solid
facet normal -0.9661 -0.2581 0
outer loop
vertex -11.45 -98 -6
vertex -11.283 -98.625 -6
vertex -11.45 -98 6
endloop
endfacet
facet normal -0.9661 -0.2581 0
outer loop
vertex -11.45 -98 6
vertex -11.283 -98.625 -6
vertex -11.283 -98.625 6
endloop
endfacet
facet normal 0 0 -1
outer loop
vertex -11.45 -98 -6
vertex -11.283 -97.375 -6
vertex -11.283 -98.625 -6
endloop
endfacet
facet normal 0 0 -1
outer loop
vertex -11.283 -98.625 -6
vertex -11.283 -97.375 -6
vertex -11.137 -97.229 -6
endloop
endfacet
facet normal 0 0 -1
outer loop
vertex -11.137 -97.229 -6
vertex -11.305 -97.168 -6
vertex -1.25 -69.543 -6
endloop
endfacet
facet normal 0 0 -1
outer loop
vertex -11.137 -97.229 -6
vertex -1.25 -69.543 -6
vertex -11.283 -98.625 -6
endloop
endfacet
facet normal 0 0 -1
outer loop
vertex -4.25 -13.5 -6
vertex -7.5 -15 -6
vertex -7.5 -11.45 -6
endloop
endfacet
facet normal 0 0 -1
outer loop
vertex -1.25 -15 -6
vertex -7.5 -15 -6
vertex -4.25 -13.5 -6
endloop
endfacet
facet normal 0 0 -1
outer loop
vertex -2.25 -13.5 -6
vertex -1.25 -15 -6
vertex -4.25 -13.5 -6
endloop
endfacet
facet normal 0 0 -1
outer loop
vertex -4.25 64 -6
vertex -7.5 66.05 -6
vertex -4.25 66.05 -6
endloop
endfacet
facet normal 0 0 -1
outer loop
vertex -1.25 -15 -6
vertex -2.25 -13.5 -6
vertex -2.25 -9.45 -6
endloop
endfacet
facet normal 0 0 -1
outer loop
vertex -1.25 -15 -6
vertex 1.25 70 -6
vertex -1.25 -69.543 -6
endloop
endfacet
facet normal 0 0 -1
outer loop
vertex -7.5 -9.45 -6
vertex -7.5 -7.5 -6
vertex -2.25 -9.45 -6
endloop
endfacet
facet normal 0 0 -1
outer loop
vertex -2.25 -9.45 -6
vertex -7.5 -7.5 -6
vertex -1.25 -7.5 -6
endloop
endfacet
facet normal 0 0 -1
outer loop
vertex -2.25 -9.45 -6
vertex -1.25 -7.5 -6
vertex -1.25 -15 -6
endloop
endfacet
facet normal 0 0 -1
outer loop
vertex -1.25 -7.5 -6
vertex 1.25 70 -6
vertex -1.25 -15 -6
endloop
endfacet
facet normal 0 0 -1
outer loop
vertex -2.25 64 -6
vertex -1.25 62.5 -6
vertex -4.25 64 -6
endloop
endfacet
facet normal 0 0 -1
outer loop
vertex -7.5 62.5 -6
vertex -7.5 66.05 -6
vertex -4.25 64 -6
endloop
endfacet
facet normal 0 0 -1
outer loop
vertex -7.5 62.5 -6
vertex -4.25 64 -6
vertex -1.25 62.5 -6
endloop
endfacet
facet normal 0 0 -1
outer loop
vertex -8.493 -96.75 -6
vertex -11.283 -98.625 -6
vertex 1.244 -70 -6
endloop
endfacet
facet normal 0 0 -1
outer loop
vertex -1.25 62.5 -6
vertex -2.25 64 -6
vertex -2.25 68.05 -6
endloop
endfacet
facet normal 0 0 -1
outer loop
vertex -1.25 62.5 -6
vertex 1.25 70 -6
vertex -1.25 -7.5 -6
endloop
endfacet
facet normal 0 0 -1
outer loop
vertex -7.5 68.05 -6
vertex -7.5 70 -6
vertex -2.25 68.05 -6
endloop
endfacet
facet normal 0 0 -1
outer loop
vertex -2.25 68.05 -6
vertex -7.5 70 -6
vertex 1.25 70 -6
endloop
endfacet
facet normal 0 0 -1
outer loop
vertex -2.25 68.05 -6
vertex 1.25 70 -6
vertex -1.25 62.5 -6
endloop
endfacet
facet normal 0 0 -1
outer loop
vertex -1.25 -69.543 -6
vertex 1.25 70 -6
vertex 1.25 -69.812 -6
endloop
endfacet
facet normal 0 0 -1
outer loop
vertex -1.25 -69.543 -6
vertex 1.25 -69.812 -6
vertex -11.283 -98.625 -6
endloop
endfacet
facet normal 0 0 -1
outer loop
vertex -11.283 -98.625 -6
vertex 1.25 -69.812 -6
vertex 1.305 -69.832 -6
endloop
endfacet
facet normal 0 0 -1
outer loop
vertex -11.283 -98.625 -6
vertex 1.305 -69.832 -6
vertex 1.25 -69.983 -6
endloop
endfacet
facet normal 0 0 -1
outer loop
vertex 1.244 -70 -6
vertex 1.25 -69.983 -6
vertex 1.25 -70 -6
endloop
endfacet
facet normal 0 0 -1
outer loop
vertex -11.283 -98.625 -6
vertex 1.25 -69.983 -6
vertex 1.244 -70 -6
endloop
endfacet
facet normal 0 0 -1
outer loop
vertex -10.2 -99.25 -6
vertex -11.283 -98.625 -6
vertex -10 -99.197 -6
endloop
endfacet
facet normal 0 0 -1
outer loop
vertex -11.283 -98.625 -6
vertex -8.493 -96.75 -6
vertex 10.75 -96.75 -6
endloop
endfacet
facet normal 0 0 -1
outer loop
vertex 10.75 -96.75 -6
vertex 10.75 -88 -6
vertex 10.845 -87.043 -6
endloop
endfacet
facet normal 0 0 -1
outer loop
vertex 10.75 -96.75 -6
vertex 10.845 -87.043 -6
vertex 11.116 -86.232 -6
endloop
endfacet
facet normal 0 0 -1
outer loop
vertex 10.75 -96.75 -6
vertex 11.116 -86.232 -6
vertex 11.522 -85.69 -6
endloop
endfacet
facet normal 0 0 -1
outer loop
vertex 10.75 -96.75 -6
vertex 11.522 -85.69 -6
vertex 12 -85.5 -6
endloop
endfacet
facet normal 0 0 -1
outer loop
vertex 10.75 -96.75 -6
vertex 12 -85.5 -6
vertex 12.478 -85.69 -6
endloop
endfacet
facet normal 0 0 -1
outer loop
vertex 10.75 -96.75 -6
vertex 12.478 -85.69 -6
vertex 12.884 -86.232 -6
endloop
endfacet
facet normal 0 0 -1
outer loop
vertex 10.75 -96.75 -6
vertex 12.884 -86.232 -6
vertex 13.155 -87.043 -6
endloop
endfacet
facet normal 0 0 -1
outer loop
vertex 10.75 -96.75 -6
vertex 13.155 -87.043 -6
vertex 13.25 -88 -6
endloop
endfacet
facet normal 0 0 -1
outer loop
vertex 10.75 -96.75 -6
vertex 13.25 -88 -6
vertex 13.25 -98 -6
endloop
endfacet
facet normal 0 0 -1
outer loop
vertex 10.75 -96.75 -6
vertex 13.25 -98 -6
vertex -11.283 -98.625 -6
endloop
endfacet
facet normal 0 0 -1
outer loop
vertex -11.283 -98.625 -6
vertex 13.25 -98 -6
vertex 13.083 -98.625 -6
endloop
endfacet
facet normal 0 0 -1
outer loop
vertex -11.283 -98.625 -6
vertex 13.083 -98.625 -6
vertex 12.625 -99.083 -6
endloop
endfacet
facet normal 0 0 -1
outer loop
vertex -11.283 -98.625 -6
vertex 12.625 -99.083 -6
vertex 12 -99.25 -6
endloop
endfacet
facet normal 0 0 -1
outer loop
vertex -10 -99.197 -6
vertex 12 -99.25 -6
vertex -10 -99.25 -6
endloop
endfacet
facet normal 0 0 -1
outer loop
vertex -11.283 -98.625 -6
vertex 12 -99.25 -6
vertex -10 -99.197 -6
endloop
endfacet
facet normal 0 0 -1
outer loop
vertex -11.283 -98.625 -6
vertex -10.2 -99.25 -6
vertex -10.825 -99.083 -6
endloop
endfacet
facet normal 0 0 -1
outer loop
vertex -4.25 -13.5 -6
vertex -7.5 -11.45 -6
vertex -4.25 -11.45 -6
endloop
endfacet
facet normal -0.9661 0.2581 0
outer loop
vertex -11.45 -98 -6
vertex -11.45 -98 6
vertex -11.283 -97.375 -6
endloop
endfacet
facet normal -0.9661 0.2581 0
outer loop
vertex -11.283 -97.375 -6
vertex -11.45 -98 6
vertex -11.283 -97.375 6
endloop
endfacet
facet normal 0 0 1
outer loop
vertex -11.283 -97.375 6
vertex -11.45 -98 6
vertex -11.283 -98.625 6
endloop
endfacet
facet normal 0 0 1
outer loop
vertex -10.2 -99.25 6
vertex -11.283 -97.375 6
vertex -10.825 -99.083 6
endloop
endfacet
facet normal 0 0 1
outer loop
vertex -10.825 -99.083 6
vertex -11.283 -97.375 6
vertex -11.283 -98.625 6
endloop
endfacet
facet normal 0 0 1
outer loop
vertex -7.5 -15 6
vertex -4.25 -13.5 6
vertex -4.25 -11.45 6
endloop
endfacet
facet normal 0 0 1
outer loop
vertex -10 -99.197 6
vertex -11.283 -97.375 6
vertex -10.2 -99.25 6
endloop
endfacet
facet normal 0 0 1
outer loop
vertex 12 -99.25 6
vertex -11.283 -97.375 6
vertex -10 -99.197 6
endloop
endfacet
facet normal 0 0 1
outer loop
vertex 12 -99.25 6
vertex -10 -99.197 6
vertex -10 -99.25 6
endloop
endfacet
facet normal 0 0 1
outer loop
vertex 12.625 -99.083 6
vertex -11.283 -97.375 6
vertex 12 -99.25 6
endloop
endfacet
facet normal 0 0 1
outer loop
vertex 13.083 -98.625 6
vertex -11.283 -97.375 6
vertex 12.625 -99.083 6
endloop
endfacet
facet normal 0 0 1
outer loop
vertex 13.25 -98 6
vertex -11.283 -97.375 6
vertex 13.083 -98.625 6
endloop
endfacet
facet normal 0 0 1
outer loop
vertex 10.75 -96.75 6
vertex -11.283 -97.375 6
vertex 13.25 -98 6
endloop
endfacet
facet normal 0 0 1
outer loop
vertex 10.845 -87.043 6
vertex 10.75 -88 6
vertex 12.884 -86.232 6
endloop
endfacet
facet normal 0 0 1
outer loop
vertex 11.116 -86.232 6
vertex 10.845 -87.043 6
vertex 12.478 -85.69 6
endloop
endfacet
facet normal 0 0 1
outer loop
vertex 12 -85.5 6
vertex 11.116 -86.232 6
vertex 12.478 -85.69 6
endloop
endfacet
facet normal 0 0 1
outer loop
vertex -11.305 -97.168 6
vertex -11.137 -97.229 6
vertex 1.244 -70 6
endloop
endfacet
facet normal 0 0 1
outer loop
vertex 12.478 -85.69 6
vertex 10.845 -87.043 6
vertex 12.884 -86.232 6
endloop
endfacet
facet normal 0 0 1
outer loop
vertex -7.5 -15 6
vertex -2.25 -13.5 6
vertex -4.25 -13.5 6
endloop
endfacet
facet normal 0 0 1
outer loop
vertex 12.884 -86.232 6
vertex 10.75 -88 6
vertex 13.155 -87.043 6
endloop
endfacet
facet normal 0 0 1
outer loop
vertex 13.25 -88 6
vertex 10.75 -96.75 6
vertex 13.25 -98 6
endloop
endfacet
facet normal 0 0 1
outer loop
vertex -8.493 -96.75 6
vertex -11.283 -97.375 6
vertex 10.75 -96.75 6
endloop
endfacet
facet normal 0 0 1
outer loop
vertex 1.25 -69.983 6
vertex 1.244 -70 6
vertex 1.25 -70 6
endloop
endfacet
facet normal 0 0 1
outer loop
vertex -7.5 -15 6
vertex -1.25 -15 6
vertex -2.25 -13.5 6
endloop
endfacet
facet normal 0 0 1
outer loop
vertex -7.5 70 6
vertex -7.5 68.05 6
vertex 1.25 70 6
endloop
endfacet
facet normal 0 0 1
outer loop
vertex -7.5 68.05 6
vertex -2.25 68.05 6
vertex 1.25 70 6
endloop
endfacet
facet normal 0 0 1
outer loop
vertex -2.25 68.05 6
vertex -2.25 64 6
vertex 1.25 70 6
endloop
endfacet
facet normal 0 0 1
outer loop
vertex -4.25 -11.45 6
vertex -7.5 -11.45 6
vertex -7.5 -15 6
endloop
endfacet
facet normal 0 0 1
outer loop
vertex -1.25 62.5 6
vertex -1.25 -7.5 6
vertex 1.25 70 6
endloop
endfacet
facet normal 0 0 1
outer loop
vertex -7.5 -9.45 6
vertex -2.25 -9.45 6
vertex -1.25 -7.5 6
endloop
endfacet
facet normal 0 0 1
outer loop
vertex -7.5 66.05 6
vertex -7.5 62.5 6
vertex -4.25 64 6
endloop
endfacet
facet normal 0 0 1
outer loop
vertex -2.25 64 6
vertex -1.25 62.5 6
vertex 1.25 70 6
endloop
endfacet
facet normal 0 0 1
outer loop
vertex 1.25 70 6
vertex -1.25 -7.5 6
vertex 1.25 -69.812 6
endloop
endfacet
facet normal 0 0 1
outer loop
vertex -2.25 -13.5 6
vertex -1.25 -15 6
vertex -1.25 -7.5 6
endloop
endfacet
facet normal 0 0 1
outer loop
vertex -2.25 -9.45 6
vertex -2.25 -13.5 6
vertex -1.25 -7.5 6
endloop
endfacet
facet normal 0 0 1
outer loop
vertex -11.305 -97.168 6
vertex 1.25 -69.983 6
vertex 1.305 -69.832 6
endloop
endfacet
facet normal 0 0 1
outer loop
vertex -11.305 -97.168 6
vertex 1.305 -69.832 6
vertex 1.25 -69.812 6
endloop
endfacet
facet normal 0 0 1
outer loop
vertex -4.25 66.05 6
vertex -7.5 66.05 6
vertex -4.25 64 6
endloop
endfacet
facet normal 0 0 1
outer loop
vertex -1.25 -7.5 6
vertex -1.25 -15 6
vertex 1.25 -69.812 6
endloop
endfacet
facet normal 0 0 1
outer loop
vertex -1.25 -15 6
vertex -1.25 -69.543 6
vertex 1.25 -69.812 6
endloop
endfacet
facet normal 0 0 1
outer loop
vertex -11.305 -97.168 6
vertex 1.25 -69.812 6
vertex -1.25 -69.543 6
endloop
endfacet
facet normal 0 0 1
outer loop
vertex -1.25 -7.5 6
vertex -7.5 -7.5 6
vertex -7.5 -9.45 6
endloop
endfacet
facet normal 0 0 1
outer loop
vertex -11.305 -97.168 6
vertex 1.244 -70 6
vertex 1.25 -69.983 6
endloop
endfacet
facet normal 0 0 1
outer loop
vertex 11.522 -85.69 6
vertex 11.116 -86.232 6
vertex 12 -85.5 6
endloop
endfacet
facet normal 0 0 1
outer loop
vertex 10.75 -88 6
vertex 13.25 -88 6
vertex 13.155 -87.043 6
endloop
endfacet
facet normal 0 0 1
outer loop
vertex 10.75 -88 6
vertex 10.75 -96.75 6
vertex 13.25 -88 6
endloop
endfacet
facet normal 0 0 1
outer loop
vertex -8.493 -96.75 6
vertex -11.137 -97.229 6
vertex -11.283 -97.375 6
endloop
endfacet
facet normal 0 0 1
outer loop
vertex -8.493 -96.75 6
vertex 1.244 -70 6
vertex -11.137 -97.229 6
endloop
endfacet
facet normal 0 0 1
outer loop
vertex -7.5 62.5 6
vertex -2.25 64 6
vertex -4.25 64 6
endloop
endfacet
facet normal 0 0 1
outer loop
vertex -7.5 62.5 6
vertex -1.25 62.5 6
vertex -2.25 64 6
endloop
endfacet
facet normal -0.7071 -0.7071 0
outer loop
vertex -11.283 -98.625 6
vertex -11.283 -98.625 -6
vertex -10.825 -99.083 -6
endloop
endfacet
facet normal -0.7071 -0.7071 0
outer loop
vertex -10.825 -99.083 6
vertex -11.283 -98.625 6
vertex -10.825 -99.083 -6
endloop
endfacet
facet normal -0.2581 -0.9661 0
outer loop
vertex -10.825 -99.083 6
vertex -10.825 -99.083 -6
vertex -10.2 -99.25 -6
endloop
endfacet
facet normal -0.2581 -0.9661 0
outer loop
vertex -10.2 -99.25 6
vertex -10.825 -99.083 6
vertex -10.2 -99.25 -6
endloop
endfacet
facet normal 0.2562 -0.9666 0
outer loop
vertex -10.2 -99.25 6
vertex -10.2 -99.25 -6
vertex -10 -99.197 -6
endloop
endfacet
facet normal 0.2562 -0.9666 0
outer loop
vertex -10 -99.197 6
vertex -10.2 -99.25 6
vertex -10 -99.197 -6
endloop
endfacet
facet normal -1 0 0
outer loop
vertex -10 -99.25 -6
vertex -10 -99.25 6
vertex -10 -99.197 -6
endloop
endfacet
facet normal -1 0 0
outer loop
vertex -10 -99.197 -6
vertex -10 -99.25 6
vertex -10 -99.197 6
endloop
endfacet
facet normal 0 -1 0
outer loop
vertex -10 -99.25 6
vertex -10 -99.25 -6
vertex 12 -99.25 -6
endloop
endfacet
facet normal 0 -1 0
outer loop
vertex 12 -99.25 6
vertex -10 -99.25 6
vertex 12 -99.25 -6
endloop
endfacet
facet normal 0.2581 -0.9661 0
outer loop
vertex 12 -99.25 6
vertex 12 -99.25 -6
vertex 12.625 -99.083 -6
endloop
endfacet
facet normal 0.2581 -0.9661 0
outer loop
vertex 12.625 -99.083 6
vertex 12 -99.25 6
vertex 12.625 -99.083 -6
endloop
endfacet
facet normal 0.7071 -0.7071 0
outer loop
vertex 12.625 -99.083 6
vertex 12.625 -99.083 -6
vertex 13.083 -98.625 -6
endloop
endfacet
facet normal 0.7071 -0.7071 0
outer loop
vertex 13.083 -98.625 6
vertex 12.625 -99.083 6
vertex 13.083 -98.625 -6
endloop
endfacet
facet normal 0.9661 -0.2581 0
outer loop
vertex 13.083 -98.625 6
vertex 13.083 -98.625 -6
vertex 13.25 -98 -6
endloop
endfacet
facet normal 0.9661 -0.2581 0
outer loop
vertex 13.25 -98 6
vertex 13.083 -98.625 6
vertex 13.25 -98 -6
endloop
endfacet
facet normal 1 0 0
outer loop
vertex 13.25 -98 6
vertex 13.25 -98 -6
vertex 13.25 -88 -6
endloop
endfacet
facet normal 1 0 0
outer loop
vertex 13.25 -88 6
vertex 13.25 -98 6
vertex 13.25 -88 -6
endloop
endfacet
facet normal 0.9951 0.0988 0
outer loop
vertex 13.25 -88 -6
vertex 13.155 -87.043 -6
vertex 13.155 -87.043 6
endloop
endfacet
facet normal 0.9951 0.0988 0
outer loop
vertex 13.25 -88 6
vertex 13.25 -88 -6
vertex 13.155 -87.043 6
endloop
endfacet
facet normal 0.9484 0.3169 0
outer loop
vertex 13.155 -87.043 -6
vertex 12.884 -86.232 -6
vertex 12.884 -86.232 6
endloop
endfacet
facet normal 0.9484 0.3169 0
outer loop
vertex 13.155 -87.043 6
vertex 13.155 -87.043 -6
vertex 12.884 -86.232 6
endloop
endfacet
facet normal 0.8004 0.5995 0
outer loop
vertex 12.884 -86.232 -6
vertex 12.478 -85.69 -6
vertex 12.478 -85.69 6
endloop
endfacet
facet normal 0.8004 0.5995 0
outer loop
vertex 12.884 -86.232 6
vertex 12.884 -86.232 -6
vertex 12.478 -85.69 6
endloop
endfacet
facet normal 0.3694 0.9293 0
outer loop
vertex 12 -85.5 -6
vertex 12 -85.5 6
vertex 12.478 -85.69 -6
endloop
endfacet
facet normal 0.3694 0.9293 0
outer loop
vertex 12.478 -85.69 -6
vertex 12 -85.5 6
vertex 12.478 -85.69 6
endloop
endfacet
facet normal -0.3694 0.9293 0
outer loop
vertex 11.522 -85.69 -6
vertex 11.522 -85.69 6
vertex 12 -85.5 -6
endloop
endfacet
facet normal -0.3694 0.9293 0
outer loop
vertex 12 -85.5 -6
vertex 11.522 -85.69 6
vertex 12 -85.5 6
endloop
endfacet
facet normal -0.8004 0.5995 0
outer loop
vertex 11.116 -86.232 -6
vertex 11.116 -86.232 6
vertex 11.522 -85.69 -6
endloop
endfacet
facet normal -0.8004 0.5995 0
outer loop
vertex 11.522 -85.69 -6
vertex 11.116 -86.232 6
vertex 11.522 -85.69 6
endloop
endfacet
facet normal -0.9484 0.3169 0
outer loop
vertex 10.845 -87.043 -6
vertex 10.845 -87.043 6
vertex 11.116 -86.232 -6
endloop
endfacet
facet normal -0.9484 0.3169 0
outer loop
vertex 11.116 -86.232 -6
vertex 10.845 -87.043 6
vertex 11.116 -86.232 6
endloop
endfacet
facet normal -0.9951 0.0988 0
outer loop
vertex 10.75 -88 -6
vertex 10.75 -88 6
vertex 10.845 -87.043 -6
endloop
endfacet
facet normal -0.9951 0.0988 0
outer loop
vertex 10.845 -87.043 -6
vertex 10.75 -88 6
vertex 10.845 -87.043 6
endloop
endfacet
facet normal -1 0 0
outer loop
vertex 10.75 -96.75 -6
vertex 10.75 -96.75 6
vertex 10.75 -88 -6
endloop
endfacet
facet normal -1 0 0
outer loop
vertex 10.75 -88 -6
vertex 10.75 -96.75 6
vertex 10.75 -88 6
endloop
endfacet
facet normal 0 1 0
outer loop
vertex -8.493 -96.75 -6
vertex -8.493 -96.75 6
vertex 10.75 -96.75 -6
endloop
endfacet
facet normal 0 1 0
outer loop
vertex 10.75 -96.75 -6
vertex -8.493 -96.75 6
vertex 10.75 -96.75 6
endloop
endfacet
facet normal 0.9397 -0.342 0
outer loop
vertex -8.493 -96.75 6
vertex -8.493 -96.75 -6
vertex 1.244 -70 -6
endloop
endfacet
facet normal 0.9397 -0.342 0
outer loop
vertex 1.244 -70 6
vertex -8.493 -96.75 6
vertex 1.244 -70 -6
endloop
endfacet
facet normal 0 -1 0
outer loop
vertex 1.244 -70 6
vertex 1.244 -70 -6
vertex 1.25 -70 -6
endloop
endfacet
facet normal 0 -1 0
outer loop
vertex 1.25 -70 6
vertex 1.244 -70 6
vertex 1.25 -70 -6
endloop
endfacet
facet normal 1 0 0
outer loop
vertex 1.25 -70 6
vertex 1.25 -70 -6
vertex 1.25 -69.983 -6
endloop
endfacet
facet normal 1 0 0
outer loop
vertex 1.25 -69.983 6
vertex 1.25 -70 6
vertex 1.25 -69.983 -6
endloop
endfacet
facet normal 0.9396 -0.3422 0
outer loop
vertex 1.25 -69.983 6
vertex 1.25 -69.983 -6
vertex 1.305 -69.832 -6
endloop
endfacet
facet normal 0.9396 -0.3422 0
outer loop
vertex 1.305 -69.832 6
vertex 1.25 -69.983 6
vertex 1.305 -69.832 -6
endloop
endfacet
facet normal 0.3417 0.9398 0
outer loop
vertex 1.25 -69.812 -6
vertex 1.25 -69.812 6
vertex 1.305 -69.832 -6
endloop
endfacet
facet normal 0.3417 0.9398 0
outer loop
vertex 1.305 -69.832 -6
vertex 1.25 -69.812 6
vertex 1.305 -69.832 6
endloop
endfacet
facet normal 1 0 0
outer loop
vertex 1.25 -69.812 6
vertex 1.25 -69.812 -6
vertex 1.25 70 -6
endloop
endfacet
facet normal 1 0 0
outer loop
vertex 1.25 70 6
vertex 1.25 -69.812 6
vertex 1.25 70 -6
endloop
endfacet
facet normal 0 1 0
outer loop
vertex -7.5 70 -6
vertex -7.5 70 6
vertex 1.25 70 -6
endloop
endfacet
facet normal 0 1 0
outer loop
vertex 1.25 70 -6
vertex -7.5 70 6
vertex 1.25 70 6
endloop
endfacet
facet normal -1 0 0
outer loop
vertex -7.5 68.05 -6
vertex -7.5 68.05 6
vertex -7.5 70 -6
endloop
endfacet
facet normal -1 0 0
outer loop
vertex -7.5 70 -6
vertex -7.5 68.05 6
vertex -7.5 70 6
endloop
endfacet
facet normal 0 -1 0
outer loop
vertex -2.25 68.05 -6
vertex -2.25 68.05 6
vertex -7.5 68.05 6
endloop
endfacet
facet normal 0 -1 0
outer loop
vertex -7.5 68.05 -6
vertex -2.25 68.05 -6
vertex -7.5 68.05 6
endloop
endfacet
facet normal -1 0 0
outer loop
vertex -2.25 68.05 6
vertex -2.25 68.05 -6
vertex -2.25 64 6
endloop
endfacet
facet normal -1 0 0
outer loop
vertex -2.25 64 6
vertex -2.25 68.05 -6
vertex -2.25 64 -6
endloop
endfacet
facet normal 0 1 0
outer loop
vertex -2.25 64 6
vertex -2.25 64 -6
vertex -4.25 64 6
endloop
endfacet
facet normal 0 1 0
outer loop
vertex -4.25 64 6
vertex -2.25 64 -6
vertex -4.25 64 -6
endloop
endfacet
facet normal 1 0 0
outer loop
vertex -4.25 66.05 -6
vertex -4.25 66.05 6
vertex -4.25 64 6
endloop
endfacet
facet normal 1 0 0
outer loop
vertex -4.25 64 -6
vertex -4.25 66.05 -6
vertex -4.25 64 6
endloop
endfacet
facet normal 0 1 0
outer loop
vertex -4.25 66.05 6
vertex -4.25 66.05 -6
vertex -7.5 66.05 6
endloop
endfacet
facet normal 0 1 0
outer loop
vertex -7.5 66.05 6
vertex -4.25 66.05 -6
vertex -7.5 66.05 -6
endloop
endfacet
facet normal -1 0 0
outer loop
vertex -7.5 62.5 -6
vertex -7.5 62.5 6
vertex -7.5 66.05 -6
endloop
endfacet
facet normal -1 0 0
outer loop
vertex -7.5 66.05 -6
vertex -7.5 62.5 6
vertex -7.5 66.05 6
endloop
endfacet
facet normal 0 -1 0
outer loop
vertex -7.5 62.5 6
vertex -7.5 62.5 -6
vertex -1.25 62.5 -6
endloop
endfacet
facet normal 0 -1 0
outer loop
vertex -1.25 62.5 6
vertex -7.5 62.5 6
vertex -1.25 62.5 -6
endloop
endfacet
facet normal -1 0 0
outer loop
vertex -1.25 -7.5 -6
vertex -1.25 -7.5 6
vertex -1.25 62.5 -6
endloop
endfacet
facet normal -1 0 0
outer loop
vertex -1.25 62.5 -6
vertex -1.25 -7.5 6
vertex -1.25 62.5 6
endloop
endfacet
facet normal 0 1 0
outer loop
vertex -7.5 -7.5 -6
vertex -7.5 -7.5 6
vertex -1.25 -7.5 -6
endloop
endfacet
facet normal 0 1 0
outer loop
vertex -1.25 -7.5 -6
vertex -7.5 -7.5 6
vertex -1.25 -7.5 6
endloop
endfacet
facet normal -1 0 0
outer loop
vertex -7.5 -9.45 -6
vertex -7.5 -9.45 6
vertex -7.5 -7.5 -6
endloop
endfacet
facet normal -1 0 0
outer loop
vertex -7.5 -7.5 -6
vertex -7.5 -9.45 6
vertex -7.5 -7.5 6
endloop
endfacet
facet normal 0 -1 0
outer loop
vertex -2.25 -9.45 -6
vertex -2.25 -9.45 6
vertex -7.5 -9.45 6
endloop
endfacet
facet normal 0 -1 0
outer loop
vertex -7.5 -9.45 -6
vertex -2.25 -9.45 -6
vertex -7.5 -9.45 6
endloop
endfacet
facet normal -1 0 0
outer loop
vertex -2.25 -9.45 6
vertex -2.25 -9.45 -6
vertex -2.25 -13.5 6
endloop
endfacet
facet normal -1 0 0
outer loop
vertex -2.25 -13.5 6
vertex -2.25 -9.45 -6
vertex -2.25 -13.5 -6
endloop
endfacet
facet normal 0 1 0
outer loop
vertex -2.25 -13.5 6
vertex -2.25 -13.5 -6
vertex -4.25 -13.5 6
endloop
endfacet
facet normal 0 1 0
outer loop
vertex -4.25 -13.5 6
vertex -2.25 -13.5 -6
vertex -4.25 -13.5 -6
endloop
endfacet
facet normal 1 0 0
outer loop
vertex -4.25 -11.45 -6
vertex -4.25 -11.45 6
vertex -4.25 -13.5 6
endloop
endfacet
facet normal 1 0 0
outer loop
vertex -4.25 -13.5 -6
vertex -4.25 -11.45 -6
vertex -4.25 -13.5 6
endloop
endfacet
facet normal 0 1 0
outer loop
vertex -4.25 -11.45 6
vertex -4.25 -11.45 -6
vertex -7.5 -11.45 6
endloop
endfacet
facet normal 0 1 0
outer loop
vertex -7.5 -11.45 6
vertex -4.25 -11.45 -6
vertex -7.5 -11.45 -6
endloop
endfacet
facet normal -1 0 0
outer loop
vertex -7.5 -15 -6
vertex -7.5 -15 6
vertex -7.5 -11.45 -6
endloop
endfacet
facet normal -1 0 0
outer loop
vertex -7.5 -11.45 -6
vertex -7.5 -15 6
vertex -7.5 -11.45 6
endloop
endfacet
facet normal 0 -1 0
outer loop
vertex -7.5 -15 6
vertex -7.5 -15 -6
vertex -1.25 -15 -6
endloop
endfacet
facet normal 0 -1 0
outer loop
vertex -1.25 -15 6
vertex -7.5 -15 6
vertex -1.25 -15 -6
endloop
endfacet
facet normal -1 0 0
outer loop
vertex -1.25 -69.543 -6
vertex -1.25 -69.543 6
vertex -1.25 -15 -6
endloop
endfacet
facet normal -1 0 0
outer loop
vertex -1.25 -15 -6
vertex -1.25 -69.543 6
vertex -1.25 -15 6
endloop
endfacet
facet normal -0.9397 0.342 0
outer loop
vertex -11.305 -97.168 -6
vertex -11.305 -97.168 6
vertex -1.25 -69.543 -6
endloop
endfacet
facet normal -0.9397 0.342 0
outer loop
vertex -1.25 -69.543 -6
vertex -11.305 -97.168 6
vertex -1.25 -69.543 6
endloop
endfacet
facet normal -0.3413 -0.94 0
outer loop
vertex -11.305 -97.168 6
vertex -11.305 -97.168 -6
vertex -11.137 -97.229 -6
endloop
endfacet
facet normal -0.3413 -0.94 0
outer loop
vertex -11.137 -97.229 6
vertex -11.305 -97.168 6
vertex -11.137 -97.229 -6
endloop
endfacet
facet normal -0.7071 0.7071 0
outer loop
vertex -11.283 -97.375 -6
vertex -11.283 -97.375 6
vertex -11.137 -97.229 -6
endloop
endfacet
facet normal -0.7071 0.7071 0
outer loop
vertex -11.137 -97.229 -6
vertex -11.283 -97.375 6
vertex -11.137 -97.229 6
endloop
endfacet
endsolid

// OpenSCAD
// file: body_loop.scad
// cylinder 97mm long, 25.5mm radius
// cylinder 11.5mm radius

module body_loop(bottle_r = 21.5, thickness=2) {
	union() {
		difference() {
			linear_extrude(height=2,center=true) {
				hull() {
					circle(bottle_r+3,$fn=64);
					translate([(bottle_r*2)/2,0,0])
						square(12,center=true);
				}
			}
			cylinder(r=bottle_r,h=3,center=true,$fn=64);
		}
		translate([bottle_r+6-thickness/2,0,2])
			cube([thickness,12,2.1],center=true);
	}
}

body_loop(21.5,1.75);
// main file
// cylinder 97mm long, 25.5mm radius
// cylinder 11.5mm radius

use <body_loop.scad>

module groove(w=2.5,d=12) {
	difference() {
		cube([w*3,w*3,d],center=true);
		translate([-26,0.8,0])
			rotate([90,0,0])
				scale([1,2,1])
					body_loop();
	}
}
// len=170;
module longpiece(len=10, w=2.5, d=12) {
	cube([w,len,d],center=true);

	translate([-(w*3)/2,(len-w*3)/2,0])
		groove(w);
	
	translate([-(w*3)/2,(len-w)/2-80,0])
		groove(w);
}


module hanger(hang_w=15, hang_len=30, w=2.5, d=12) {
	linear_extrude(height=d,center=true) {
		translate([0,-hang_len/2])
			square([hang_w,w],center=true);

		translate([hang_w/2,-hang_len/2+5]) {
			square([w,10],center=true);
			translate([0,5])
				scale([0.5,1])
					circle(w,$fn=16);
			translate([0,-5])
				circle(w/2,$fn=12);
		}

		translate([-hang_w/2-0.2,-hang_len/2])
			circle(w/2,$fn=12);

		translate([-hang_w/2+5,-0.5,0])
			rotate([0,0,-20])
				square([w,hang_len],center=true);
	}
}

longpiece(140);
translate([1,-83,0])
	hanger(22);
